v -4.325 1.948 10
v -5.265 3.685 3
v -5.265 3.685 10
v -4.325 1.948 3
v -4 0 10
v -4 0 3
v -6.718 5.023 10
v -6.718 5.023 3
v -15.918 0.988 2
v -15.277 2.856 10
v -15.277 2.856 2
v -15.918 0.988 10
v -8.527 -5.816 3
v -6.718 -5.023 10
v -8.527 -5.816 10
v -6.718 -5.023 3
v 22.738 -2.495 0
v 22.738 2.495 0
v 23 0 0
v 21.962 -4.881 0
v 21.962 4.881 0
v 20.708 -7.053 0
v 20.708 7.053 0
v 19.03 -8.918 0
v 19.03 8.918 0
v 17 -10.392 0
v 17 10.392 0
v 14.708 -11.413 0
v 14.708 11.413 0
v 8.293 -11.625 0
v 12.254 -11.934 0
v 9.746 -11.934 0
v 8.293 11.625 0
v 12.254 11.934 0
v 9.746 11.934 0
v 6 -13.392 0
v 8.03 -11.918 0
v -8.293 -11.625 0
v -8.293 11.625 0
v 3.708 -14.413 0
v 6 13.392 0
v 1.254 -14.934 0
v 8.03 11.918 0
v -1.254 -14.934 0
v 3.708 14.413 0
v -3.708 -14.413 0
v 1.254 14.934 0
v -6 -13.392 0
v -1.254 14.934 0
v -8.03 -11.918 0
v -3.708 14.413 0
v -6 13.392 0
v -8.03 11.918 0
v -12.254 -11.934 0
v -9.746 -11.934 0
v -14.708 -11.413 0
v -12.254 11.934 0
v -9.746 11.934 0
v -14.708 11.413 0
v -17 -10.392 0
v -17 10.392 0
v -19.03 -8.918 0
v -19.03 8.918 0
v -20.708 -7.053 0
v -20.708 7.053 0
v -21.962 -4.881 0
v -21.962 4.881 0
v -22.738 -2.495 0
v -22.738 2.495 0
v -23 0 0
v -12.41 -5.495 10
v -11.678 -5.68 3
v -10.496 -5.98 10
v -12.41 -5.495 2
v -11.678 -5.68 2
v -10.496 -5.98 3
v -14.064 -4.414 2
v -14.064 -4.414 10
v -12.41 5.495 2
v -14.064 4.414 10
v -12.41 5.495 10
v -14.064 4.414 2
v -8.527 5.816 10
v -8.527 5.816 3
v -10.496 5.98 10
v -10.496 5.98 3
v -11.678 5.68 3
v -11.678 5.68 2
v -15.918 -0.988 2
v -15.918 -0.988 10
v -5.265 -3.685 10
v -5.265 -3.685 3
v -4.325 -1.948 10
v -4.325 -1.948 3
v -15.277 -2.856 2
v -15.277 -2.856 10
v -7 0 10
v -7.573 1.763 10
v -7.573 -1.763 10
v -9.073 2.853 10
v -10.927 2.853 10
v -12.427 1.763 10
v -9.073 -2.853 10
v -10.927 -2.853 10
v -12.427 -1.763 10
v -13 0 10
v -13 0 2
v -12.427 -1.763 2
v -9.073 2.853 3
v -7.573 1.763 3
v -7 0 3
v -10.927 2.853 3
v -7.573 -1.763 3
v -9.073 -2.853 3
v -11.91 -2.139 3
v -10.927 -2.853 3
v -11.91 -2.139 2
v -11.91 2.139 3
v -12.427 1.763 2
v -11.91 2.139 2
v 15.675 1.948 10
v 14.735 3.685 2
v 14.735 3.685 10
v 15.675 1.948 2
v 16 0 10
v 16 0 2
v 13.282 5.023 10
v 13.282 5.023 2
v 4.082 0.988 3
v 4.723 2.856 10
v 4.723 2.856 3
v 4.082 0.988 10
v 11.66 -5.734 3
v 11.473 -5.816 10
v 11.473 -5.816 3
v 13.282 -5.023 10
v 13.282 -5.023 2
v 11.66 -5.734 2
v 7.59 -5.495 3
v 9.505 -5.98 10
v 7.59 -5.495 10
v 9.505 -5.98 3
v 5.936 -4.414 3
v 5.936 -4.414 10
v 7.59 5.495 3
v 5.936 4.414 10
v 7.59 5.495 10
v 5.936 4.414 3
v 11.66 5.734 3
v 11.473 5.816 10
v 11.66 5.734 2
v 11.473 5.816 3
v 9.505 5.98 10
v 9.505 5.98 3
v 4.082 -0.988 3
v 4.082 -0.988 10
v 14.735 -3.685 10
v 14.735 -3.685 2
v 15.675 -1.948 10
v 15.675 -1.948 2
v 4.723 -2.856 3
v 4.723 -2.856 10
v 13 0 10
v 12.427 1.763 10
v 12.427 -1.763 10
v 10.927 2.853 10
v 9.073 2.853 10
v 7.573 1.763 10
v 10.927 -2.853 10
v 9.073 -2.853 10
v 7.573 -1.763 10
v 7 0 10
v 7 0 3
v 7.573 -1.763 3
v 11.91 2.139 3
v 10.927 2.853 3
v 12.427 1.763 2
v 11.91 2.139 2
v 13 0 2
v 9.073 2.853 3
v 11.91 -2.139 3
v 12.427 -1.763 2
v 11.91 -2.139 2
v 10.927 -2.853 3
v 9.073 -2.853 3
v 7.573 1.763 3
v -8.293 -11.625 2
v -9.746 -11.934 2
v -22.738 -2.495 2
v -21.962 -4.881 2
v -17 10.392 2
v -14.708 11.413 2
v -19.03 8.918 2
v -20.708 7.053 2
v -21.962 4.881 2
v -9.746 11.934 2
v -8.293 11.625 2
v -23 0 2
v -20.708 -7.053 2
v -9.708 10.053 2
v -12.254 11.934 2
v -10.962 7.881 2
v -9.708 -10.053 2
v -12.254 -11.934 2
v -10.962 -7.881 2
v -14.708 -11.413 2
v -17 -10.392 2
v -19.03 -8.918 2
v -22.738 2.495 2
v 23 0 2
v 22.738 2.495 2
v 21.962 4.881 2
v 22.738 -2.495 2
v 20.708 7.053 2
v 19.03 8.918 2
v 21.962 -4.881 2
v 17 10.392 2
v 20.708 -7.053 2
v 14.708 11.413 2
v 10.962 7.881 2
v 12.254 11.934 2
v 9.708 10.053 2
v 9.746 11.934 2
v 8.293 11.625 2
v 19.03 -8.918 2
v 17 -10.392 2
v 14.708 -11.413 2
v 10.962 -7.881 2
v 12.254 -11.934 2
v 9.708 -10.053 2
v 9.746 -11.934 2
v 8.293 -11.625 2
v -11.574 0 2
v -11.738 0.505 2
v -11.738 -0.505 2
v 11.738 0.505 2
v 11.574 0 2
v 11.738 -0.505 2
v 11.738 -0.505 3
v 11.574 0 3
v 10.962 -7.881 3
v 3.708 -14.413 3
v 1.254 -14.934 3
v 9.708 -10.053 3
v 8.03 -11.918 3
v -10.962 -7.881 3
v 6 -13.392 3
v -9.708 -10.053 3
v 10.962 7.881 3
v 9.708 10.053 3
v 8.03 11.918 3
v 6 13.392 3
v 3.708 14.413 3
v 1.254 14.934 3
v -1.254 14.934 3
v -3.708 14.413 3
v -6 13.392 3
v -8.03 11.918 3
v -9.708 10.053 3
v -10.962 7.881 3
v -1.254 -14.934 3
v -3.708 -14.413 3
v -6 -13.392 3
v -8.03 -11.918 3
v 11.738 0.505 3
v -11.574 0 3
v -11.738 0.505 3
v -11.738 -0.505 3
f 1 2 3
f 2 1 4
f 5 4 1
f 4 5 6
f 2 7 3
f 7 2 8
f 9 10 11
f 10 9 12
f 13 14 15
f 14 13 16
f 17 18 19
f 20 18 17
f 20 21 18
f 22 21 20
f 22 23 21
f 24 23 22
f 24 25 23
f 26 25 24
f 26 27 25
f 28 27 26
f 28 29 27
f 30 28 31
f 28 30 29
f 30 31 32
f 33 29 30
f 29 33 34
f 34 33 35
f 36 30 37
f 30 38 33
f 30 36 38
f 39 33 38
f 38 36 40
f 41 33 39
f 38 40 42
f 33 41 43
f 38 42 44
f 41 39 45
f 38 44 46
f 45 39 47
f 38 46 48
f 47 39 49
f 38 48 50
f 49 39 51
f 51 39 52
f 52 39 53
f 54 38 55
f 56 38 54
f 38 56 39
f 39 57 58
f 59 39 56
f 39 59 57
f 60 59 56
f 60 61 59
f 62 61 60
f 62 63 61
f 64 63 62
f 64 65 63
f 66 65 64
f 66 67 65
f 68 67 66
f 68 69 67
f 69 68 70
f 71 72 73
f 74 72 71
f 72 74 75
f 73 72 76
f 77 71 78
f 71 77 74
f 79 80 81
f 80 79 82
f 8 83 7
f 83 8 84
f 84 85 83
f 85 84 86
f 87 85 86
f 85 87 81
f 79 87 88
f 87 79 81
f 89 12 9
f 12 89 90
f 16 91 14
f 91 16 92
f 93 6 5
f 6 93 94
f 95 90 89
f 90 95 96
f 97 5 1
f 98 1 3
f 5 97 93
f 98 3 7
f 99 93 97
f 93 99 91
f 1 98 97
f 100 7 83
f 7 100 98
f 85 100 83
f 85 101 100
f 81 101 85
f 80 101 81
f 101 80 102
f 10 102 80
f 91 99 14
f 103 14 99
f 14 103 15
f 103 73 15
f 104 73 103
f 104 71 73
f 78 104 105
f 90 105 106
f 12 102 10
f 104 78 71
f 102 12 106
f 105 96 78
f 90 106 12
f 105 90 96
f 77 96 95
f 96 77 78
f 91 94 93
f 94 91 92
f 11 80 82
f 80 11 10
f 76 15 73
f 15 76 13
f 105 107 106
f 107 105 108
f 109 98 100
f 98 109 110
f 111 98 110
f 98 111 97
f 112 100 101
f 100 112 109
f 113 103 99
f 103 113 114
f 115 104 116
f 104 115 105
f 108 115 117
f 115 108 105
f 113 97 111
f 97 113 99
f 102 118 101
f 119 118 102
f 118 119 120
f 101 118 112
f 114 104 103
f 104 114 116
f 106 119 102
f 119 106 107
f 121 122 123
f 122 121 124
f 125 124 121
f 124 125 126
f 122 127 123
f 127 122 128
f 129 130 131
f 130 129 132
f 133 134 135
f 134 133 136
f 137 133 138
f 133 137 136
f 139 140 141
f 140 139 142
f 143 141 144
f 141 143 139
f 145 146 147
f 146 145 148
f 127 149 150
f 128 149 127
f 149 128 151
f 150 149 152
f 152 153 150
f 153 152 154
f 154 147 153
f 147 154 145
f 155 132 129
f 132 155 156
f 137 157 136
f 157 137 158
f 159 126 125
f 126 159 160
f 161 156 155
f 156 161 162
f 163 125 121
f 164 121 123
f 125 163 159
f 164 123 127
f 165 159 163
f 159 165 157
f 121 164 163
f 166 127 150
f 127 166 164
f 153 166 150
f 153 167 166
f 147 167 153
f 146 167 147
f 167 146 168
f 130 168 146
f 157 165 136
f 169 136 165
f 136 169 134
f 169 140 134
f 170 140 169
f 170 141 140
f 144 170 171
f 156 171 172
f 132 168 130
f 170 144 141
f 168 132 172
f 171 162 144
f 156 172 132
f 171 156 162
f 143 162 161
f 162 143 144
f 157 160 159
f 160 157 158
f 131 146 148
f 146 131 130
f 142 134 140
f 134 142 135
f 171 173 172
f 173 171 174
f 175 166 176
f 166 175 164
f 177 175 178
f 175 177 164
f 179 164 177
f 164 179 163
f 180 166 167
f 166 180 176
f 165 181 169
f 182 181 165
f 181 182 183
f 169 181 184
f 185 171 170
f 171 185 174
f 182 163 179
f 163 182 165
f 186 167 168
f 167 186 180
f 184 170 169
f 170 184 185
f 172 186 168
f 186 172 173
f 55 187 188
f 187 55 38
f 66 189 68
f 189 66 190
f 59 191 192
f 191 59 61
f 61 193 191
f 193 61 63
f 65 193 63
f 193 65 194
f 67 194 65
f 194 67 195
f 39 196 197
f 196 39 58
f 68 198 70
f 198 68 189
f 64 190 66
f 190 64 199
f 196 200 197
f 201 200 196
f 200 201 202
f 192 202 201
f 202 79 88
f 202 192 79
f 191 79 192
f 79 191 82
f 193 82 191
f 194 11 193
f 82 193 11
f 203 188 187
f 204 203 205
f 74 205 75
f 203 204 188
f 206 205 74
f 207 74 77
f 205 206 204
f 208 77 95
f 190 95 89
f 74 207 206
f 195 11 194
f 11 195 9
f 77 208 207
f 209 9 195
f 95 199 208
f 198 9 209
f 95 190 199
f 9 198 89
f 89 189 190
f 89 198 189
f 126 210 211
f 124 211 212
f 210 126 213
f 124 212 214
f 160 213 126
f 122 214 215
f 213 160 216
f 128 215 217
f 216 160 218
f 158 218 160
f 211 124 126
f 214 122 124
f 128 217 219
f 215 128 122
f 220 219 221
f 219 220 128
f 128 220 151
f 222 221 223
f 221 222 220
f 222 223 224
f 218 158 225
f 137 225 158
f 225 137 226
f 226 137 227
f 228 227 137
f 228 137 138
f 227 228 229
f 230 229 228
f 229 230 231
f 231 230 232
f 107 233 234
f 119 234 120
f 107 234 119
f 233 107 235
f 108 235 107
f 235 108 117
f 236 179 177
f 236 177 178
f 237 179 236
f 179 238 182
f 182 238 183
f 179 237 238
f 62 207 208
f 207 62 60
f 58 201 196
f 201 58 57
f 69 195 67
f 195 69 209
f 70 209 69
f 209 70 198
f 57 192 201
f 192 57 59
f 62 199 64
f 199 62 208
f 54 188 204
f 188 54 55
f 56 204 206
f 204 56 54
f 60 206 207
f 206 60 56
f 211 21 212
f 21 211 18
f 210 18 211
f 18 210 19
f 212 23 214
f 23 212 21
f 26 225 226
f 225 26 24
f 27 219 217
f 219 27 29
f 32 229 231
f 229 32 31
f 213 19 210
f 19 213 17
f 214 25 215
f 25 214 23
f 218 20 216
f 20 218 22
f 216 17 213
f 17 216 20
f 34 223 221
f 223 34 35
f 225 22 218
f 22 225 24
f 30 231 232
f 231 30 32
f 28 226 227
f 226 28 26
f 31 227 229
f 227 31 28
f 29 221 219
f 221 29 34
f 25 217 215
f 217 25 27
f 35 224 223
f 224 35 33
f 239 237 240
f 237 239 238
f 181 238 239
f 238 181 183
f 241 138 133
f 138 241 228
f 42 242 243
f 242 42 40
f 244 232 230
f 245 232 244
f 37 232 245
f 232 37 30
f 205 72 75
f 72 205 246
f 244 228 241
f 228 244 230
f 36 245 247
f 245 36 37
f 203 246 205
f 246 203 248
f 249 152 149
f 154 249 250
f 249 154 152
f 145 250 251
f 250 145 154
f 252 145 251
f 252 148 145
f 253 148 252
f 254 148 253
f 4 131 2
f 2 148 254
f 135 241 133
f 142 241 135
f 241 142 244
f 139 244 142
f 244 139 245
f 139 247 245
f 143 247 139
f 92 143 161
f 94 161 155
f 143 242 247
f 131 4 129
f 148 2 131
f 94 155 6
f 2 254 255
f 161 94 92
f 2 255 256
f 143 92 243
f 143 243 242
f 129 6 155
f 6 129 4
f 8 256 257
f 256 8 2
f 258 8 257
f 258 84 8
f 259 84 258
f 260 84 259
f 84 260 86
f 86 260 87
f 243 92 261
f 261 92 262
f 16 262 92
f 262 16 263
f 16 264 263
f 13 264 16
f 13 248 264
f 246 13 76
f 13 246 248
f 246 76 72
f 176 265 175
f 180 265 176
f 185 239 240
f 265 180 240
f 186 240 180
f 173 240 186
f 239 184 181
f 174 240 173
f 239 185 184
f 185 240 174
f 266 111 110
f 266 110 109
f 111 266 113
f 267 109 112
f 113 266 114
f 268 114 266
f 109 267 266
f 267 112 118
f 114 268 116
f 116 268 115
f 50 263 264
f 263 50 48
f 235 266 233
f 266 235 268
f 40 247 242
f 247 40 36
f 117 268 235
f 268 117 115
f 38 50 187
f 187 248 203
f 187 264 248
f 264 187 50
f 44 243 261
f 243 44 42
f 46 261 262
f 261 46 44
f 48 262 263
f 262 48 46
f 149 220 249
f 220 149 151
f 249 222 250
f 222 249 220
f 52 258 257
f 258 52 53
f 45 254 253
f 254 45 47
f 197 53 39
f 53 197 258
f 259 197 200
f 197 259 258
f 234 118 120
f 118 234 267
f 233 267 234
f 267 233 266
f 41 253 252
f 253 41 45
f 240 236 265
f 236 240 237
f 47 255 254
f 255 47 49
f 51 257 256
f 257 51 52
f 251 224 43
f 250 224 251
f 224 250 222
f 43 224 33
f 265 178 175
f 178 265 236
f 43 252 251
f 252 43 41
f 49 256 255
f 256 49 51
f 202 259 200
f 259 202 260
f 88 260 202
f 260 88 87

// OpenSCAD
// Variables for dimensions
module flange(diameter, thickness) {
    cylinder(h = thickness, d = diameter);
}

module coupling_segment(inner_diameter, outer_diameter, length) {
    difference() {
        cylinder(h = length, d = outer_diameter);
        translate([0, 0, -1]) 
            cylinder(h = length + 2, d = inner_diameter);
    }
}

module flexible_coupling() {
    // Define dimensions
    // Adjust these values to match the proportions of the images
    flange_diameter = 24;
    flange_thickness = 2;
    coupling_length = 10;
    coupling_inner_diameter = 6;
    coupling_outer_diameter = 12;
    spacer_thickness = 3;
    
    // Layout the components
    for (i = [-1, 1]) {
        translate([i * coupling_length, 0, 0])
            coupling_segment(coupling_inner_diameter, coupling_outer_diameter, coupling_length);
            
        translate([i * (coupling_length + flange_thickness/2), 0, 0])
            flange(flange_diameter, flange_thickness);
    }
    
    // Add spacers between the flanges
    for (i = [-1, 1]) {
        translate([0, i * spacer_thickness, 0]) {
            flange(flange_diameter, spacer_thickness);
        }
    }
}

flexible_coupling();
